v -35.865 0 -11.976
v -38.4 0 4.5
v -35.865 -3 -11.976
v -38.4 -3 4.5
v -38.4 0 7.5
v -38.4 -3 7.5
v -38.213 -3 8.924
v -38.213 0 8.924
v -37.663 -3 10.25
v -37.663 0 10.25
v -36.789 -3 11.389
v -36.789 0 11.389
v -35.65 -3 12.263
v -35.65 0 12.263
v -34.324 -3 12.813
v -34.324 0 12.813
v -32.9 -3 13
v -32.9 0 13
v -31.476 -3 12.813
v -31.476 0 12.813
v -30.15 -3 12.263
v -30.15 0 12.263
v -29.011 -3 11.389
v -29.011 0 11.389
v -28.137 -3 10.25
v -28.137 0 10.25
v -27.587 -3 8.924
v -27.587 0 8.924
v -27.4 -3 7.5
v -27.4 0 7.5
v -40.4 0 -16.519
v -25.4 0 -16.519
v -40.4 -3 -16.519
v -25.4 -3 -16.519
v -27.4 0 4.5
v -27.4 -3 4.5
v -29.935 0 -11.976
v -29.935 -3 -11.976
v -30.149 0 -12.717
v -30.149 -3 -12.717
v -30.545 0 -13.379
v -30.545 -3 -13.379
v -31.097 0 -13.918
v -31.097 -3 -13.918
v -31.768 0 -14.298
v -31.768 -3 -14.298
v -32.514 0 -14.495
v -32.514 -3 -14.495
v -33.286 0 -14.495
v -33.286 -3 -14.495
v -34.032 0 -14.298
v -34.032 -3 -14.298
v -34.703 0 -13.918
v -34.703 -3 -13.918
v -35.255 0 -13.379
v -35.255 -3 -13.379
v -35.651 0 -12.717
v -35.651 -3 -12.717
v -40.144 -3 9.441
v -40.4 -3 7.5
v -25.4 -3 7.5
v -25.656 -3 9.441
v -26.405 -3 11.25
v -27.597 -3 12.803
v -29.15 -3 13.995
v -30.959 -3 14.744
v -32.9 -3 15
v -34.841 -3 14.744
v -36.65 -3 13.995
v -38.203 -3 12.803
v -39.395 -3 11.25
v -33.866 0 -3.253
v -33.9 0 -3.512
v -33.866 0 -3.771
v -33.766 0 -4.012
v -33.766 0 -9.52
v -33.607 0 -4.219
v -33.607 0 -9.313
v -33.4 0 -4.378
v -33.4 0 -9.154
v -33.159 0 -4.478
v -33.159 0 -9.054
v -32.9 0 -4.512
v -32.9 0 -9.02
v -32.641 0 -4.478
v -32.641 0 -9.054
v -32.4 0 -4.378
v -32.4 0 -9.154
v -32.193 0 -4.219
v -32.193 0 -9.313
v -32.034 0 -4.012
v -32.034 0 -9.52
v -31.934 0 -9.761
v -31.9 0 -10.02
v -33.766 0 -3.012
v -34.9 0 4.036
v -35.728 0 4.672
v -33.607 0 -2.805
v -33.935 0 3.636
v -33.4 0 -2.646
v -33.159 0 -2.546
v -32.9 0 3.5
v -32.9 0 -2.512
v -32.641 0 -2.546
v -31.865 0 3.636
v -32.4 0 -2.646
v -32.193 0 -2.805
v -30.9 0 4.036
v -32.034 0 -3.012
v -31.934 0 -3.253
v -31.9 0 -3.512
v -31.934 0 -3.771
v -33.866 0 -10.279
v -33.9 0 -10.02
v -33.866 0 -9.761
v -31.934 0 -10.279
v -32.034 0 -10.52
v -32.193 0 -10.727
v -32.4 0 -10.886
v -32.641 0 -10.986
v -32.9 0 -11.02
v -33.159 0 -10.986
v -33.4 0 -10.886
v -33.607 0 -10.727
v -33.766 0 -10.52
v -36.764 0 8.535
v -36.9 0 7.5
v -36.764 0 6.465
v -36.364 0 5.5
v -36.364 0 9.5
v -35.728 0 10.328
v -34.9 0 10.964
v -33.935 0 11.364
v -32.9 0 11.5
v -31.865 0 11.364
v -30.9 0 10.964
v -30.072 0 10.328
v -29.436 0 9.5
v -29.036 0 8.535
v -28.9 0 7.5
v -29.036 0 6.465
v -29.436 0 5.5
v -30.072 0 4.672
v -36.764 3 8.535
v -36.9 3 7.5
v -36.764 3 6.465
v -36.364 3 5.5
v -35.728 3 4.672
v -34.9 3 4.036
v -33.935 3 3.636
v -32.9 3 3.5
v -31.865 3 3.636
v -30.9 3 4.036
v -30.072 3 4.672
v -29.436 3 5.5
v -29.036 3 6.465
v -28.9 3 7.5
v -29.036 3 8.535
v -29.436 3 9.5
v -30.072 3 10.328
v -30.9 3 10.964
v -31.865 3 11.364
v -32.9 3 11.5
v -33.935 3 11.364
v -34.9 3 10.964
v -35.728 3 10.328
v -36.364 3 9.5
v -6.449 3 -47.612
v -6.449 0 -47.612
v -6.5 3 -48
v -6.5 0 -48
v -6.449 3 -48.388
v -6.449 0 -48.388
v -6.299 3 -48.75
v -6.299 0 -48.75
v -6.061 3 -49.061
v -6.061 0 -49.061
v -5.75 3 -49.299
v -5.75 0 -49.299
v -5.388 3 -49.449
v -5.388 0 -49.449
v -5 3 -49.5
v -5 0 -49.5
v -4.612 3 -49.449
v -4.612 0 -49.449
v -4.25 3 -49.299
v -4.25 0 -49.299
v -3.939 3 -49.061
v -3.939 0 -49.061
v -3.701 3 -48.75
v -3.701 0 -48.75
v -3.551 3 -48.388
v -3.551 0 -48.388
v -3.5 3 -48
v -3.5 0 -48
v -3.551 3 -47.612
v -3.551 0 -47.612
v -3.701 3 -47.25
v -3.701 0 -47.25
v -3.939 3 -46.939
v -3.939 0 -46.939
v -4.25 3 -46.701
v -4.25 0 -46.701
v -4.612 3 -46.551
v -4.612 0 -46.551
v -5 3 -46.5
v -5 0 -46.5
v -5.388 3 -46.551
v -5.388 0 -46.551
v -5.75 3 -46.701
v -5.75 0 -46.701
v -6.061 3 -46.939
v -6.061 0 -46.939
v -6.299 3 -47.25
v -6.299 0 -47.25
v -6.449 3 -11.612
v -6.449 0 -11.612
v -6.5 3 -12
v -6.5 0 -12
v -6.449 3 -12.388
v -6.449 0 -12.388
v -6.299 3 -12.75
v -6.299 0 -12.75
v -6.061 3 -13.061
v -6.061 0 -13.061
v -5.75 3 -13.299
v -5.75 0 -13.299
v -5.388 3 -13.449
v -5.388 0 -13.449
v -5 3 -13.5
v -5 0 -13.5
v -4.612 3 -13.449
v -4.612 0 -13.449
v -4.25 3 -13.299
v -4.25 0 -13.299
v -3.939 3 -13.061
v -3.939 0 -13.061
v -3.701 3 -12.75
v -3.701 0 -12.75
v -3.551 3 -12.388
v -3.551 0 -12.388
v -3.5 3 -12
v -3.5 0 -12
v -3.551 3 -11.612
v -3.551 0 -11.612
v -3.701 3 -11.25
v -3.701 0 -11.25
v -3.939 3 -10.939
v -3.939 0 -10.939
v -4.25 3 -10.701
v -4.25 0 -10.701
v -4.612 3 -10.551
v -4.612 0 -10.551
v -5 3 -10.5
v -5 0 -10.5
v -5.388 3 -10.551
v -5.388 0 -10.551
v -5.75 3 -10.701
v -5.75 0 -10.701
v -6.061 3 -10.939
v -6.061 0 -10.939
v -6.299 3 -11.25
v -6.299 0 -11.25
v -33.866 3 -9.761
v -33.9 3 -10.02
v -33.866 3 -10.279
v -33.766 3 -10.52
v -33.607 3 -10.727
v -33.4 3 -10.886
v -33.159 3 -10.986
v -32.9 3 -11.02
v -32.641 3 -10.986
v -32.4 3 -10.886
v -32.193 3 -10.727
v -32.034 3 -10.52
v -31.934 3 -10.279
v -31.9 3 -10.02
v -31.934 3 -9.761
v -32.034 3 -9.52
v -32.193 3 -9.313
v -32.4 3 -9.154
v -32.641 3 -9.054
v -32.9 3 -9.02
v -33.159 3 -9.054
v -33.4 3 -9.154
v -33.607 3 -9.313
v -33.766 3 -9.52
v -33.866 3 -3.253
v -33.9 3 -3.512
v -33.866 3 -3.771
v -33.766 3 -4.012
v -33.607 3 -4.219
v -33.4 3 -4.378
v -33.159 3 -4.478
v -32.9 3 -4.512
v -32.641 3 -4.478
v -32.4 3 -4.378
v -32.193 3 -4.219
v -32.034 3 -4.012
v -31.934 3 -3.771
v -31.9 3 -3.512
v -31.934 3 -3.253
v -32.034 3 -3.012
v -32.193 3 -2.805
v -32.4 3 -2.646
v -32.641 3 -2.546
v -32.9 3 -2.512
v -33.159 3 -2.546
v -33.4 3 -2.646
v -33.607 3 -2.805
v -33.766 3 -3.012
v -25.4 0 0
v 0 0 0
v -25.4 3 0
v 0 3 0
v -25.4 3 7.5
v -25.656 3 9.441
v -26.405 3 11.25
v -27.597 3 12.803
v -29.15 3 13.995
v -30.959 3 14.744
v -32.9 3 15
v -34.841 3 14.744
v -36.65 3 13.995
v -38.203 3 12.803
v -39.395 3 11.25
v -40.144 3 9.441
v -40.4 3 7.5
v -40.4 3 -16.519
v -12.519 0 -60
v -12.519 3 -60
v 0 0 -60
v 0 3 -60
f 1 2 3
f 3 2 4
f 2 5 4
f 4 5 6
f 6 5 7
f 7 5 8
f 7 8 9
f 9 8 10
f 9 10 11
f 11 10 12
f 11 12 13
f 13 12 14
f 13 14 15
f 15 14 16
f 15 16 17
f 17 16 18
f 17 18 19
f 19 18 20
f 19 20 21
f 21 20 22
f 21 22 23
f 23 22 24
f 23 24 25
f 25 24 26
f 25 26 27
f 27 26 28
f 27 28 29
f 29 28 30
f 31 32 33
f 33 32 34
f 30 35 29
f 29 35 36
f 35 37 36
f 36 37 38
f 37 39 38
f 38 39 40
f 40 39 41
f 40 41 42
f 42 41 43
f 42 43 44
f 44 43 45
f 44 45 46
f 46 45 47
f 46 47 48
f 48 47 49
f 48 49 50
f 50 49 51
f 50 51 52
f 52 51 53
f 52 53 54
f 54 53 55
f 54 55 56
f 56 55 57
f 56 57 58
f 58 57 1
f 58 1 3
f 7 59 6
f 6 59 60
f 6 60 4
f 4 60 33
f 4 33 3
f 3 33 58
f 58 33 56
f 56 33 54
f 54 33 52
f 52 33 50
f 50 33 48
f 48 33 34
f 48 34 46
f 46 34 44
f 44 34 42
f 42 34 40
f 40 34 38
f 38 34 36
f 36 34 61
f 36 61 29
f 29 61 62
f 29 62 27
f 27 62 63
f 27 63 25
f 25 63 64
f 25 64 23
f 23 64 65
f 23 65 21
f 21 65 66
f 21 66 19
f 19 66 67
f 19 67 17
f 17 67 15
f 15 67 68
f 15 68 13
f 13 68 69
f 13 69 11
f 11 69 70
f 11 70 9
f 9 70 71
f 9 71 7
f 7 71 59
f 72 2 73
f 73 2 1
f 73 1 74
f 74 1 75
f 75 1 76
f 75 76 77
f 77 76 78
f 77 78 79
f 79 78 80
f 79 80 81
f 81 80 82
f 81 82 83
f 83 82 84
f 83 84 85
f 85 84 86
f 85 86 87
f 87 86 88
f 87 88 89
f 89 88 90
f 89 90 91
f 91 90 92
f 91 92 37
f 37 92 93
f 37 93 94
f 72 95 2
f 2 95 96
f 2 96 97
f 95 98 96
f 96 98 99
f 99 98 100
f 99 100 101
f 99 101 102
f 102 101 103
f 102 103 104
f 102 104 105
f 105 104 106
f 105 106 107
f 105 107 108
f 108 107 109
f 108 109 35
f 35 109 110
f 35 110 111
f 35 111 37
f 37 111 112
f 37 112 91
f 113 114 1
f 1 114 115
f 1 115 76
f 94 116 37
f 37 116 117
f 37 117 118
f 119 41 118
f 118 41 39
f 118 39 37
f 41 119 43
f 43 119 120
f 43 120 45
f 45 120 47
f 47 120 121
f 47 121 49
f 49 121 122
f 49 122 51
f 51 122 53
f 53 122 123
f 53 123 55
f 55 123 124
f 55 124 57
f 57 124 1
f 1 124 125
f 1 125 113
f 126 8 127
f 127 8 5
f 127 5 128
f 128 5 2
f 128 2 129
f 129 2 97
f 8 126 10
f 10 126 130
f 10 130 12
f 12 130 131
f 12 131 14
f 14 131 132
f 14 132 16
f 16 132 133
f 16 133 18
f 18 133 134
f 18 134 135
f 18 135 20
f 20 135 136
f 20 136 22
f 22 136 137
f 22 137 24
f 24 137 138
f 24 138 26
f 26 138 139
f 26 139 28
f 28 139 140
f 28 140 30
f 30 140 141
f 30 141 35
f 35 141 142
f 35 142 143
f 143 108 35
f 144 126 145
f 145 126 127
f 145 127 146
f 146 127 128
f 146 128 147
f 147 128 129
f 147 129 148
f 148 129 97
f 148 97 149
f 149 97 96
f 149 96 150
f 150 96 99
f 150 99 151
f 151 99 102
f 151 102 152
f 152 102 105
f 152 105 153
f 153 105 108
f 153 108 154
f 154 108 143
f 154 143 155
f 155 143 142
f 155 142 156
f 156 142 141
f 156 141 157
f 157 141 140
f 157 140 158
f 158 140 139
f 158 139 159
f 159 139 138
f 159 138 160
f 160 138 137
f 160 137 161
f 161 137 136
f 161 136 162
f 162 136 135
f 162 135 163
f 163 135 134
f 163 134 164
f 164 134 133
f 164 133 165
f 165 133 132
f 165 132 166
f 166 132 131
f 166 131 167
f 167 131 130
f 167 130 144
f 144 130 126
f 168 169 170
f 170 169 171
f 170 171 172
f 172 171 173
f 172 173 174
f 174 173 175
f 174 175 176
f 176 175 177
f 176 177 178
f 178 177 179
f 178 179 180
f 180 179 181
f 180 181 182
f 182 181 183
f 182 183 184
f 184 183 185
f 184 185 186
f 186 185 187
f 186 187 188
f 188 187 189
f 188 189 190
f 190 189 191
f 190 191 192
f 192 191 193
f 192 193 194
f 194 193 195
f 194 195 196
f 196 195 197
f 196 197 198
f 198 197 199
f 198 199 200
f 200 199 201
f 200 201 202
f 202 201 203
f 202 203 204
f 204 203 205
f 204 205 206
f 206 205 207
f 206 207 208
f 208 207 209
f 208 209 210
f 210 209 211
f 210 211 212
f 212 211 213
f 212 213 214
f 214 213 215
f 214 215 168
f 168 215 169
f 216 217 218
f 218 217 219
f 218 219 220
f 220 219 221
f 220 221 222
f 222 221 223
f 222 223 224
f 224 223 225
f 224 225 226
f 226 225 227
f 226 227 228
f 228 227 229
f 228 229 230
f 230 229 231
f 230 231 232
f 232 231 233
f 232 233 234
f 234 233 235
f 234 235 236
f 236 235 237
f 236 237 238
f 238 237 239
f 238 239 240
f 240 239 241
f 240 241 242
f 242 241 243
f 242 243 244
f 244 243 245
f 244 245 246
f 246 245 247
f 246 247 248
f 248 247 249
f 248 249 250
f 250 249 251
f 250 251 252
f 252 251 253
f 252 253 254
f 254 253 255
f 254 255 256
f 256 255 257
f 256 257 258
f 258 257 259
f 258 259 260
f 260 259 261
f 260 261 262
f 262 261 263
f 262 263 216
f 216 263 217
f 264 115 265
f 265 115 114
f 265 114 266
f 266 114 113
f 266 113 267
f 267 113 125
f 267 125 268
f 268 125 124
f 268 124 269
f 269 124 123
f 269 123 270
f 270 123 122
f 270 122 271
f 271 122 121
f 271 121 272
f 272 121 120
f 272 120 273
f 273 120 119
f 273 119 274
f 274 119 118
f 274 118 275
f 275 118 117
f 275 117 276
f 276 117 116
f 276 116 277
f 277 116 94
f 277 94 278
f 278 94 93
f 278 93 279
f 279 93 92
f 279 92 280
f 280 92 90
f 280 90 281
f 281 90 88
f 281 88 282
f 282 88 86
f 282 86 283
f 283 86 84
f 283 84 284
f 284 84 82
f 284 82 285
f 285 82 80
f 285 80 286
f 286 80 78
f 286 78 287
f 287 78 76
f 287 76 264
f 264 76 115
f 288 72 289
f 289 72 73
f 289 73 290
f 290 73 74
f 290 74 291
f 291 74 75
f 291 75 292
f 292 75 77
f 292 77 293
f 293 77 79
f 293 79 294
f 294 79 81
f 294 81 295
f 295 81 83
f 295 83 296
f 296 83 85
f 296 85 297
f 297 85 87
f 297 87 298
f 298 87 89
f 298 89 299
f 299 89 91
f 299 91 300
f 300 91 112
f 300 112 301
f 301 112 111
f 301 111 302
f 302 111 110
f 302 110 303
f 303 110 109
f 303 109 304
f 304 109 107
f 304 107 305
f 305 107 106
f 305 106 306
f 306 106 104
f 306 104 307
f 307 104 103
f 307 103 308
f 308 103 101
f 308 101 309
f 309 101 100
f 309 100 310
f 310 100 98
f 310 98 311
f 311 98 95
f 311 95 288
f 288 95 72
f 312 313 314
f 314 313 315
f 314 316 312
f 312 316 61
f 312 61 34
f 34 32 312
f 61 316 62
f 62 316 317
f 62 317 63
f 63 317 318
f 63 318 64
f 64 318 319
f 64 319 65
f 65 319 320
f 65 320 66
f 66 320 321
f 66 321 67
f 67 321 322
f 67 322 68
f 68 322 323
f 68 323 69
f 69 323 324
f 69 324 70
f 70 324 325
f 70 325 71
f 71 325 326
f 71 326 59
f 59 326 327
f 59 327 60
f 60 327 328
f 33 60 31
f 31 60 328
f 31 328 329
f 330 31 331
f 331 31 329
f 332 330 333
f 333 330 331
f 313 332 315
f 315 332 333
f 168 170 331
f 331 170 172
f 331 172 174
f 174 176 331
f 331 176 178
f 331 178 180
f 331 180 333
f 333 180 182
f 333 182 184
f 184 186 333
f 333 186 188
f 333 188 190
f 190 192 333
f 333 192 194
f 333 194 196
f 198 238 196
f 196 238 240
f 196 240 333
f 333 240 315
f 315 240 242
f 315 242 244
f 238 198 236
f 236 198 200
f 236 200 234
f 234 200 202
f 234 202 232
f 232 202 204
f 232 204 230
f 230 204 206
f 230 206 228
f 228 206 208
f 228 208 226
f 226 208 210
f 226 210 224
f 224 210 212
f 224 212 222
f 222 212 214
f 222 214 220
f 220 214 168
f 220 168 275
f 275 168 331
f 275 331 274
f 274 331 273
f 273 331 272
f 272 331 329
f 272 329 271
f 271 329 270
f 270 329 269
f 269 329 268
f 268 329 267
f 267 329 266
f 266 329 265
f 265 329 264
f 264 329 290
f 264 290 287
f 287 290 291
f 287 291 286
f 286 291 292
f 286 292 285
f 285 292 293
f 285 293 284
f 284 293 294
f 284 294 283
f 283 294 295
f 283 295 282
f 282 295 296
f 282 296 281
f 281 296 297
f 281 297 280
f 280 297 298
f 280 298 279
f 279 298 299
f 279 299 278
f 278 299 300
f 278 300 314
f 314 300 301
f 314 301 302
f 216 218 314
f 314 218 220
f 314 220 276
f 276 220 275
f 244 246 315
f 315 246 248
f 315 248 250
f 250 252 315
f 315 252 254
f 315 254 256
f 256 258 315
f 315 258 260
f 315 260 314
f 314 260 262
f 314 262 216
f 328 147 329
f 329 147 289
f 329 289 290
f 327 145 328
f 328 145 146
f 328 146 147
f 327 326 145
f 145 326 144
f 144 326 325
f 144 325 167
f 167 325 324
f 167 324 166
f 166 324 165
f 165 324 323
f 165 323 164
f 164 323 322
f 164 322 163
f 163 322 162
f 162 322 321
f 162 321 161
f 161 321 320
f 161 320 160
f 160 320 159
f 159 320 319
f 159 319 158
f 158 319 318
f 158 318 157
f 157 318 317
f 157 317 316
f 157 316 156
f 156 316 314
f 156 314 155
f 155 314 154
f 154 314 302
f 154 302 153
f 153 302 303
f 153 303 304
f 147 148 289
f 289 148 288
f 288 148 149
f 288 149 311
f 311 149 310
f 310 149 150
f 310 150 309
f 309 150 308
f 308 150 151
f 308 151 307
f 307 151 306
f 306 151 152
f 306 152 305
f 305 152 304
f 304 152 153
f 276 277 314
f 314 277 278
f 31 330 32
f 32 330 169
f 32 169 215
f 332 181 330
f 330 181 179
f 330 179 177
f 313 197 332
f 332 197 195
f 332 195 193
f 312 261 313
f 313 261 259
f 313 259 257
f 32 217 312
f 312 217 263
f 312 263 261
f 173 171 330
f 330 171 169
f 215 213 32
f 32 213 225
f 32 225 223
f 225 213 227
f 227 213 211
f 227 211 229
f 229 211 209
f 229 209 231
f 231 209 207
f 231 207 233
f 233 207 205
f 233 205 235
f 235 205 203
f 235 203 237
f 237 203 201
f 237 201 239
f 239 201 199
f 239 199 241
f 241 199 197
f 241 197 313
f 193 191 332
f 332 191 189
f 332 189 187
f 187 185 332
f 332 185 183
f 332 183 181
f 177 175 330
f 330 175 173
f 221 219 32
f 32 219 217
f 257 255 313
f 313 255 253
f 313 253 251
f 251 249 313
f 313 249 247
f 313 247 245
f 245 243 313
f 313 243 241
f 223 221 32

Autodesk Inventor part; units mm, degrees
ref_plane "YZ Plane" through (0, 0, 0) normal (1, 0, 0) x (0, 1, 0)
ref_plane "XZ Plane" through (0, 0, 0) normal (0, 1, 0) x (-1, 0, 0)
ref_plane "XY Plane" through (0, 0, 0) normal (0, 0, 1) x (1, 0, 0)
sketch "Sketch3" plane through (0, 0, 0) normal (0, 1, 0) x (-1, 0, 0)
  line L0 (0, 0) -> (0, -60)
  line L1 (0, 0) -> (60, 0) construction
  line L2 (0, -60) -> (12.519, -60)
  line L3 (0, 0) -> (25.4, 0)
  line L4 (25.4, 0) -> (25.4, 7.5)
  arc A0 (40.4, 7.5) -> (25.4, 7.5) centre (32.9, 7.5) ccw
  line L5 (40.4, 7.5) -> (40.4, -16.519)
  line L6 (40.4, -16.519) -> (12.519, -60)
  line L7 (0, -30) -> (5, -30)
  line L8 (5, -60) -> (5, -48)
  line L9 (5, 0) -> (5, -12)
  circle A1 centre (5, -12) radius 1.5
  circle A2 centre (5, -48) radius 1.5
  circle A3 centre (32.9, 7.5) radius 4
  line L10 (32.9, 7.5) -> (32.9, -3.512)
  line L11 (32.9, -3.512) -> (32.9, -10.02)
  circle A4 centre (32.9, -3.512) radius 1
  circle A5 centre (32.9, -10.02) radius 1
  dimension "d6" = 60
  dimension "d7" = 90
  dimension "d8" = 12.519
  dimension "d9" = 25.4
  dimension "d10" = 7.5
  dimension "d11" = 15
  dimension "d13" = 24.019
  dimension "d18" = 5
  dimension "d19" = 12
  dimension "d20" = 12
  dimension "d21" = 3
  dimension "d22" = 3
  dimension "d25" = 8
  dimension "d26" = 11.012
  dimension "d27" = 6.508
  dimension "d28" = 2
  dimension "d29" = 2
extrude "Extrusion1" add sketch "Sketch3" along normal blind 3
sketch "Sketch6" plane through (0, 3, 0) normal (0, 1, 0) x (1, 0, 0)
  circle A0 centre (-32.9, -7.5) radius 4 projected
  circle A1 centre (-5, 48) radius 1.5 projected
  circle A2 centre (-5, 12) radius 1.5 projected
  circle A3 centre (-32.9, 10.02) radius 1 projected
  circle A4 centre (-32.9, 3.512) radius 1 projected
  line L0 (0, 0) -> (0, 60) projected
  line L1 (0, 60) -> (-12.519, 60) projected
  line L2 (-12.519, 60) -> (-40.4, 16.519) projected
  line L3 (-40.4, 16.519) -> (-40.4, -7.5) projected
  arc A5 (-40.4, -7.5) -> (-25.4, -7.5) centre (-32.9, -7.5) ccw projected
  line L4 (-25.4, -7.5) -> (-25.4, 0) projected
  line L5 (-25.4, 0) -> (0, 0) projected
  line L6 (-40.4, 16.519) -> (-25.4, 16.519)
  line L7 (-25.4, -7.5) -> (-25.4, 0) projected
  line L8 (-25.4, 16.519) -> (-25.4, 0)
  circle A6 centre (-32.9, -7.5) radius 5.5
  line L9 (-32.9, 10.02) -> (-32.9, 11.52)
  circle A7 centre (-32.9, 11.52) radius 3
  line L10 (-38.4, -7.5) -> (-38.4, -4.5)
  line L11 (-27.4, -7.5) -> (-27.4, -4.5)
  line L12 (-27.4, -4.5) -> (-29.9349, 11.9762)
  line L13 (-38.4, -4.5) -> (-35.8651, 11.9762)
  point P0 (0, 0)
  dimension "d31" = 11
  dimension "d32" = 1.5
  dimension "d33" = 6
  dimension "d34" = 3
extrude "Extrusion3" add sketch "Sketch6" against normal blind 6 contours L4 A5 L3 L6 L8
properties part number "servoSideShort"
